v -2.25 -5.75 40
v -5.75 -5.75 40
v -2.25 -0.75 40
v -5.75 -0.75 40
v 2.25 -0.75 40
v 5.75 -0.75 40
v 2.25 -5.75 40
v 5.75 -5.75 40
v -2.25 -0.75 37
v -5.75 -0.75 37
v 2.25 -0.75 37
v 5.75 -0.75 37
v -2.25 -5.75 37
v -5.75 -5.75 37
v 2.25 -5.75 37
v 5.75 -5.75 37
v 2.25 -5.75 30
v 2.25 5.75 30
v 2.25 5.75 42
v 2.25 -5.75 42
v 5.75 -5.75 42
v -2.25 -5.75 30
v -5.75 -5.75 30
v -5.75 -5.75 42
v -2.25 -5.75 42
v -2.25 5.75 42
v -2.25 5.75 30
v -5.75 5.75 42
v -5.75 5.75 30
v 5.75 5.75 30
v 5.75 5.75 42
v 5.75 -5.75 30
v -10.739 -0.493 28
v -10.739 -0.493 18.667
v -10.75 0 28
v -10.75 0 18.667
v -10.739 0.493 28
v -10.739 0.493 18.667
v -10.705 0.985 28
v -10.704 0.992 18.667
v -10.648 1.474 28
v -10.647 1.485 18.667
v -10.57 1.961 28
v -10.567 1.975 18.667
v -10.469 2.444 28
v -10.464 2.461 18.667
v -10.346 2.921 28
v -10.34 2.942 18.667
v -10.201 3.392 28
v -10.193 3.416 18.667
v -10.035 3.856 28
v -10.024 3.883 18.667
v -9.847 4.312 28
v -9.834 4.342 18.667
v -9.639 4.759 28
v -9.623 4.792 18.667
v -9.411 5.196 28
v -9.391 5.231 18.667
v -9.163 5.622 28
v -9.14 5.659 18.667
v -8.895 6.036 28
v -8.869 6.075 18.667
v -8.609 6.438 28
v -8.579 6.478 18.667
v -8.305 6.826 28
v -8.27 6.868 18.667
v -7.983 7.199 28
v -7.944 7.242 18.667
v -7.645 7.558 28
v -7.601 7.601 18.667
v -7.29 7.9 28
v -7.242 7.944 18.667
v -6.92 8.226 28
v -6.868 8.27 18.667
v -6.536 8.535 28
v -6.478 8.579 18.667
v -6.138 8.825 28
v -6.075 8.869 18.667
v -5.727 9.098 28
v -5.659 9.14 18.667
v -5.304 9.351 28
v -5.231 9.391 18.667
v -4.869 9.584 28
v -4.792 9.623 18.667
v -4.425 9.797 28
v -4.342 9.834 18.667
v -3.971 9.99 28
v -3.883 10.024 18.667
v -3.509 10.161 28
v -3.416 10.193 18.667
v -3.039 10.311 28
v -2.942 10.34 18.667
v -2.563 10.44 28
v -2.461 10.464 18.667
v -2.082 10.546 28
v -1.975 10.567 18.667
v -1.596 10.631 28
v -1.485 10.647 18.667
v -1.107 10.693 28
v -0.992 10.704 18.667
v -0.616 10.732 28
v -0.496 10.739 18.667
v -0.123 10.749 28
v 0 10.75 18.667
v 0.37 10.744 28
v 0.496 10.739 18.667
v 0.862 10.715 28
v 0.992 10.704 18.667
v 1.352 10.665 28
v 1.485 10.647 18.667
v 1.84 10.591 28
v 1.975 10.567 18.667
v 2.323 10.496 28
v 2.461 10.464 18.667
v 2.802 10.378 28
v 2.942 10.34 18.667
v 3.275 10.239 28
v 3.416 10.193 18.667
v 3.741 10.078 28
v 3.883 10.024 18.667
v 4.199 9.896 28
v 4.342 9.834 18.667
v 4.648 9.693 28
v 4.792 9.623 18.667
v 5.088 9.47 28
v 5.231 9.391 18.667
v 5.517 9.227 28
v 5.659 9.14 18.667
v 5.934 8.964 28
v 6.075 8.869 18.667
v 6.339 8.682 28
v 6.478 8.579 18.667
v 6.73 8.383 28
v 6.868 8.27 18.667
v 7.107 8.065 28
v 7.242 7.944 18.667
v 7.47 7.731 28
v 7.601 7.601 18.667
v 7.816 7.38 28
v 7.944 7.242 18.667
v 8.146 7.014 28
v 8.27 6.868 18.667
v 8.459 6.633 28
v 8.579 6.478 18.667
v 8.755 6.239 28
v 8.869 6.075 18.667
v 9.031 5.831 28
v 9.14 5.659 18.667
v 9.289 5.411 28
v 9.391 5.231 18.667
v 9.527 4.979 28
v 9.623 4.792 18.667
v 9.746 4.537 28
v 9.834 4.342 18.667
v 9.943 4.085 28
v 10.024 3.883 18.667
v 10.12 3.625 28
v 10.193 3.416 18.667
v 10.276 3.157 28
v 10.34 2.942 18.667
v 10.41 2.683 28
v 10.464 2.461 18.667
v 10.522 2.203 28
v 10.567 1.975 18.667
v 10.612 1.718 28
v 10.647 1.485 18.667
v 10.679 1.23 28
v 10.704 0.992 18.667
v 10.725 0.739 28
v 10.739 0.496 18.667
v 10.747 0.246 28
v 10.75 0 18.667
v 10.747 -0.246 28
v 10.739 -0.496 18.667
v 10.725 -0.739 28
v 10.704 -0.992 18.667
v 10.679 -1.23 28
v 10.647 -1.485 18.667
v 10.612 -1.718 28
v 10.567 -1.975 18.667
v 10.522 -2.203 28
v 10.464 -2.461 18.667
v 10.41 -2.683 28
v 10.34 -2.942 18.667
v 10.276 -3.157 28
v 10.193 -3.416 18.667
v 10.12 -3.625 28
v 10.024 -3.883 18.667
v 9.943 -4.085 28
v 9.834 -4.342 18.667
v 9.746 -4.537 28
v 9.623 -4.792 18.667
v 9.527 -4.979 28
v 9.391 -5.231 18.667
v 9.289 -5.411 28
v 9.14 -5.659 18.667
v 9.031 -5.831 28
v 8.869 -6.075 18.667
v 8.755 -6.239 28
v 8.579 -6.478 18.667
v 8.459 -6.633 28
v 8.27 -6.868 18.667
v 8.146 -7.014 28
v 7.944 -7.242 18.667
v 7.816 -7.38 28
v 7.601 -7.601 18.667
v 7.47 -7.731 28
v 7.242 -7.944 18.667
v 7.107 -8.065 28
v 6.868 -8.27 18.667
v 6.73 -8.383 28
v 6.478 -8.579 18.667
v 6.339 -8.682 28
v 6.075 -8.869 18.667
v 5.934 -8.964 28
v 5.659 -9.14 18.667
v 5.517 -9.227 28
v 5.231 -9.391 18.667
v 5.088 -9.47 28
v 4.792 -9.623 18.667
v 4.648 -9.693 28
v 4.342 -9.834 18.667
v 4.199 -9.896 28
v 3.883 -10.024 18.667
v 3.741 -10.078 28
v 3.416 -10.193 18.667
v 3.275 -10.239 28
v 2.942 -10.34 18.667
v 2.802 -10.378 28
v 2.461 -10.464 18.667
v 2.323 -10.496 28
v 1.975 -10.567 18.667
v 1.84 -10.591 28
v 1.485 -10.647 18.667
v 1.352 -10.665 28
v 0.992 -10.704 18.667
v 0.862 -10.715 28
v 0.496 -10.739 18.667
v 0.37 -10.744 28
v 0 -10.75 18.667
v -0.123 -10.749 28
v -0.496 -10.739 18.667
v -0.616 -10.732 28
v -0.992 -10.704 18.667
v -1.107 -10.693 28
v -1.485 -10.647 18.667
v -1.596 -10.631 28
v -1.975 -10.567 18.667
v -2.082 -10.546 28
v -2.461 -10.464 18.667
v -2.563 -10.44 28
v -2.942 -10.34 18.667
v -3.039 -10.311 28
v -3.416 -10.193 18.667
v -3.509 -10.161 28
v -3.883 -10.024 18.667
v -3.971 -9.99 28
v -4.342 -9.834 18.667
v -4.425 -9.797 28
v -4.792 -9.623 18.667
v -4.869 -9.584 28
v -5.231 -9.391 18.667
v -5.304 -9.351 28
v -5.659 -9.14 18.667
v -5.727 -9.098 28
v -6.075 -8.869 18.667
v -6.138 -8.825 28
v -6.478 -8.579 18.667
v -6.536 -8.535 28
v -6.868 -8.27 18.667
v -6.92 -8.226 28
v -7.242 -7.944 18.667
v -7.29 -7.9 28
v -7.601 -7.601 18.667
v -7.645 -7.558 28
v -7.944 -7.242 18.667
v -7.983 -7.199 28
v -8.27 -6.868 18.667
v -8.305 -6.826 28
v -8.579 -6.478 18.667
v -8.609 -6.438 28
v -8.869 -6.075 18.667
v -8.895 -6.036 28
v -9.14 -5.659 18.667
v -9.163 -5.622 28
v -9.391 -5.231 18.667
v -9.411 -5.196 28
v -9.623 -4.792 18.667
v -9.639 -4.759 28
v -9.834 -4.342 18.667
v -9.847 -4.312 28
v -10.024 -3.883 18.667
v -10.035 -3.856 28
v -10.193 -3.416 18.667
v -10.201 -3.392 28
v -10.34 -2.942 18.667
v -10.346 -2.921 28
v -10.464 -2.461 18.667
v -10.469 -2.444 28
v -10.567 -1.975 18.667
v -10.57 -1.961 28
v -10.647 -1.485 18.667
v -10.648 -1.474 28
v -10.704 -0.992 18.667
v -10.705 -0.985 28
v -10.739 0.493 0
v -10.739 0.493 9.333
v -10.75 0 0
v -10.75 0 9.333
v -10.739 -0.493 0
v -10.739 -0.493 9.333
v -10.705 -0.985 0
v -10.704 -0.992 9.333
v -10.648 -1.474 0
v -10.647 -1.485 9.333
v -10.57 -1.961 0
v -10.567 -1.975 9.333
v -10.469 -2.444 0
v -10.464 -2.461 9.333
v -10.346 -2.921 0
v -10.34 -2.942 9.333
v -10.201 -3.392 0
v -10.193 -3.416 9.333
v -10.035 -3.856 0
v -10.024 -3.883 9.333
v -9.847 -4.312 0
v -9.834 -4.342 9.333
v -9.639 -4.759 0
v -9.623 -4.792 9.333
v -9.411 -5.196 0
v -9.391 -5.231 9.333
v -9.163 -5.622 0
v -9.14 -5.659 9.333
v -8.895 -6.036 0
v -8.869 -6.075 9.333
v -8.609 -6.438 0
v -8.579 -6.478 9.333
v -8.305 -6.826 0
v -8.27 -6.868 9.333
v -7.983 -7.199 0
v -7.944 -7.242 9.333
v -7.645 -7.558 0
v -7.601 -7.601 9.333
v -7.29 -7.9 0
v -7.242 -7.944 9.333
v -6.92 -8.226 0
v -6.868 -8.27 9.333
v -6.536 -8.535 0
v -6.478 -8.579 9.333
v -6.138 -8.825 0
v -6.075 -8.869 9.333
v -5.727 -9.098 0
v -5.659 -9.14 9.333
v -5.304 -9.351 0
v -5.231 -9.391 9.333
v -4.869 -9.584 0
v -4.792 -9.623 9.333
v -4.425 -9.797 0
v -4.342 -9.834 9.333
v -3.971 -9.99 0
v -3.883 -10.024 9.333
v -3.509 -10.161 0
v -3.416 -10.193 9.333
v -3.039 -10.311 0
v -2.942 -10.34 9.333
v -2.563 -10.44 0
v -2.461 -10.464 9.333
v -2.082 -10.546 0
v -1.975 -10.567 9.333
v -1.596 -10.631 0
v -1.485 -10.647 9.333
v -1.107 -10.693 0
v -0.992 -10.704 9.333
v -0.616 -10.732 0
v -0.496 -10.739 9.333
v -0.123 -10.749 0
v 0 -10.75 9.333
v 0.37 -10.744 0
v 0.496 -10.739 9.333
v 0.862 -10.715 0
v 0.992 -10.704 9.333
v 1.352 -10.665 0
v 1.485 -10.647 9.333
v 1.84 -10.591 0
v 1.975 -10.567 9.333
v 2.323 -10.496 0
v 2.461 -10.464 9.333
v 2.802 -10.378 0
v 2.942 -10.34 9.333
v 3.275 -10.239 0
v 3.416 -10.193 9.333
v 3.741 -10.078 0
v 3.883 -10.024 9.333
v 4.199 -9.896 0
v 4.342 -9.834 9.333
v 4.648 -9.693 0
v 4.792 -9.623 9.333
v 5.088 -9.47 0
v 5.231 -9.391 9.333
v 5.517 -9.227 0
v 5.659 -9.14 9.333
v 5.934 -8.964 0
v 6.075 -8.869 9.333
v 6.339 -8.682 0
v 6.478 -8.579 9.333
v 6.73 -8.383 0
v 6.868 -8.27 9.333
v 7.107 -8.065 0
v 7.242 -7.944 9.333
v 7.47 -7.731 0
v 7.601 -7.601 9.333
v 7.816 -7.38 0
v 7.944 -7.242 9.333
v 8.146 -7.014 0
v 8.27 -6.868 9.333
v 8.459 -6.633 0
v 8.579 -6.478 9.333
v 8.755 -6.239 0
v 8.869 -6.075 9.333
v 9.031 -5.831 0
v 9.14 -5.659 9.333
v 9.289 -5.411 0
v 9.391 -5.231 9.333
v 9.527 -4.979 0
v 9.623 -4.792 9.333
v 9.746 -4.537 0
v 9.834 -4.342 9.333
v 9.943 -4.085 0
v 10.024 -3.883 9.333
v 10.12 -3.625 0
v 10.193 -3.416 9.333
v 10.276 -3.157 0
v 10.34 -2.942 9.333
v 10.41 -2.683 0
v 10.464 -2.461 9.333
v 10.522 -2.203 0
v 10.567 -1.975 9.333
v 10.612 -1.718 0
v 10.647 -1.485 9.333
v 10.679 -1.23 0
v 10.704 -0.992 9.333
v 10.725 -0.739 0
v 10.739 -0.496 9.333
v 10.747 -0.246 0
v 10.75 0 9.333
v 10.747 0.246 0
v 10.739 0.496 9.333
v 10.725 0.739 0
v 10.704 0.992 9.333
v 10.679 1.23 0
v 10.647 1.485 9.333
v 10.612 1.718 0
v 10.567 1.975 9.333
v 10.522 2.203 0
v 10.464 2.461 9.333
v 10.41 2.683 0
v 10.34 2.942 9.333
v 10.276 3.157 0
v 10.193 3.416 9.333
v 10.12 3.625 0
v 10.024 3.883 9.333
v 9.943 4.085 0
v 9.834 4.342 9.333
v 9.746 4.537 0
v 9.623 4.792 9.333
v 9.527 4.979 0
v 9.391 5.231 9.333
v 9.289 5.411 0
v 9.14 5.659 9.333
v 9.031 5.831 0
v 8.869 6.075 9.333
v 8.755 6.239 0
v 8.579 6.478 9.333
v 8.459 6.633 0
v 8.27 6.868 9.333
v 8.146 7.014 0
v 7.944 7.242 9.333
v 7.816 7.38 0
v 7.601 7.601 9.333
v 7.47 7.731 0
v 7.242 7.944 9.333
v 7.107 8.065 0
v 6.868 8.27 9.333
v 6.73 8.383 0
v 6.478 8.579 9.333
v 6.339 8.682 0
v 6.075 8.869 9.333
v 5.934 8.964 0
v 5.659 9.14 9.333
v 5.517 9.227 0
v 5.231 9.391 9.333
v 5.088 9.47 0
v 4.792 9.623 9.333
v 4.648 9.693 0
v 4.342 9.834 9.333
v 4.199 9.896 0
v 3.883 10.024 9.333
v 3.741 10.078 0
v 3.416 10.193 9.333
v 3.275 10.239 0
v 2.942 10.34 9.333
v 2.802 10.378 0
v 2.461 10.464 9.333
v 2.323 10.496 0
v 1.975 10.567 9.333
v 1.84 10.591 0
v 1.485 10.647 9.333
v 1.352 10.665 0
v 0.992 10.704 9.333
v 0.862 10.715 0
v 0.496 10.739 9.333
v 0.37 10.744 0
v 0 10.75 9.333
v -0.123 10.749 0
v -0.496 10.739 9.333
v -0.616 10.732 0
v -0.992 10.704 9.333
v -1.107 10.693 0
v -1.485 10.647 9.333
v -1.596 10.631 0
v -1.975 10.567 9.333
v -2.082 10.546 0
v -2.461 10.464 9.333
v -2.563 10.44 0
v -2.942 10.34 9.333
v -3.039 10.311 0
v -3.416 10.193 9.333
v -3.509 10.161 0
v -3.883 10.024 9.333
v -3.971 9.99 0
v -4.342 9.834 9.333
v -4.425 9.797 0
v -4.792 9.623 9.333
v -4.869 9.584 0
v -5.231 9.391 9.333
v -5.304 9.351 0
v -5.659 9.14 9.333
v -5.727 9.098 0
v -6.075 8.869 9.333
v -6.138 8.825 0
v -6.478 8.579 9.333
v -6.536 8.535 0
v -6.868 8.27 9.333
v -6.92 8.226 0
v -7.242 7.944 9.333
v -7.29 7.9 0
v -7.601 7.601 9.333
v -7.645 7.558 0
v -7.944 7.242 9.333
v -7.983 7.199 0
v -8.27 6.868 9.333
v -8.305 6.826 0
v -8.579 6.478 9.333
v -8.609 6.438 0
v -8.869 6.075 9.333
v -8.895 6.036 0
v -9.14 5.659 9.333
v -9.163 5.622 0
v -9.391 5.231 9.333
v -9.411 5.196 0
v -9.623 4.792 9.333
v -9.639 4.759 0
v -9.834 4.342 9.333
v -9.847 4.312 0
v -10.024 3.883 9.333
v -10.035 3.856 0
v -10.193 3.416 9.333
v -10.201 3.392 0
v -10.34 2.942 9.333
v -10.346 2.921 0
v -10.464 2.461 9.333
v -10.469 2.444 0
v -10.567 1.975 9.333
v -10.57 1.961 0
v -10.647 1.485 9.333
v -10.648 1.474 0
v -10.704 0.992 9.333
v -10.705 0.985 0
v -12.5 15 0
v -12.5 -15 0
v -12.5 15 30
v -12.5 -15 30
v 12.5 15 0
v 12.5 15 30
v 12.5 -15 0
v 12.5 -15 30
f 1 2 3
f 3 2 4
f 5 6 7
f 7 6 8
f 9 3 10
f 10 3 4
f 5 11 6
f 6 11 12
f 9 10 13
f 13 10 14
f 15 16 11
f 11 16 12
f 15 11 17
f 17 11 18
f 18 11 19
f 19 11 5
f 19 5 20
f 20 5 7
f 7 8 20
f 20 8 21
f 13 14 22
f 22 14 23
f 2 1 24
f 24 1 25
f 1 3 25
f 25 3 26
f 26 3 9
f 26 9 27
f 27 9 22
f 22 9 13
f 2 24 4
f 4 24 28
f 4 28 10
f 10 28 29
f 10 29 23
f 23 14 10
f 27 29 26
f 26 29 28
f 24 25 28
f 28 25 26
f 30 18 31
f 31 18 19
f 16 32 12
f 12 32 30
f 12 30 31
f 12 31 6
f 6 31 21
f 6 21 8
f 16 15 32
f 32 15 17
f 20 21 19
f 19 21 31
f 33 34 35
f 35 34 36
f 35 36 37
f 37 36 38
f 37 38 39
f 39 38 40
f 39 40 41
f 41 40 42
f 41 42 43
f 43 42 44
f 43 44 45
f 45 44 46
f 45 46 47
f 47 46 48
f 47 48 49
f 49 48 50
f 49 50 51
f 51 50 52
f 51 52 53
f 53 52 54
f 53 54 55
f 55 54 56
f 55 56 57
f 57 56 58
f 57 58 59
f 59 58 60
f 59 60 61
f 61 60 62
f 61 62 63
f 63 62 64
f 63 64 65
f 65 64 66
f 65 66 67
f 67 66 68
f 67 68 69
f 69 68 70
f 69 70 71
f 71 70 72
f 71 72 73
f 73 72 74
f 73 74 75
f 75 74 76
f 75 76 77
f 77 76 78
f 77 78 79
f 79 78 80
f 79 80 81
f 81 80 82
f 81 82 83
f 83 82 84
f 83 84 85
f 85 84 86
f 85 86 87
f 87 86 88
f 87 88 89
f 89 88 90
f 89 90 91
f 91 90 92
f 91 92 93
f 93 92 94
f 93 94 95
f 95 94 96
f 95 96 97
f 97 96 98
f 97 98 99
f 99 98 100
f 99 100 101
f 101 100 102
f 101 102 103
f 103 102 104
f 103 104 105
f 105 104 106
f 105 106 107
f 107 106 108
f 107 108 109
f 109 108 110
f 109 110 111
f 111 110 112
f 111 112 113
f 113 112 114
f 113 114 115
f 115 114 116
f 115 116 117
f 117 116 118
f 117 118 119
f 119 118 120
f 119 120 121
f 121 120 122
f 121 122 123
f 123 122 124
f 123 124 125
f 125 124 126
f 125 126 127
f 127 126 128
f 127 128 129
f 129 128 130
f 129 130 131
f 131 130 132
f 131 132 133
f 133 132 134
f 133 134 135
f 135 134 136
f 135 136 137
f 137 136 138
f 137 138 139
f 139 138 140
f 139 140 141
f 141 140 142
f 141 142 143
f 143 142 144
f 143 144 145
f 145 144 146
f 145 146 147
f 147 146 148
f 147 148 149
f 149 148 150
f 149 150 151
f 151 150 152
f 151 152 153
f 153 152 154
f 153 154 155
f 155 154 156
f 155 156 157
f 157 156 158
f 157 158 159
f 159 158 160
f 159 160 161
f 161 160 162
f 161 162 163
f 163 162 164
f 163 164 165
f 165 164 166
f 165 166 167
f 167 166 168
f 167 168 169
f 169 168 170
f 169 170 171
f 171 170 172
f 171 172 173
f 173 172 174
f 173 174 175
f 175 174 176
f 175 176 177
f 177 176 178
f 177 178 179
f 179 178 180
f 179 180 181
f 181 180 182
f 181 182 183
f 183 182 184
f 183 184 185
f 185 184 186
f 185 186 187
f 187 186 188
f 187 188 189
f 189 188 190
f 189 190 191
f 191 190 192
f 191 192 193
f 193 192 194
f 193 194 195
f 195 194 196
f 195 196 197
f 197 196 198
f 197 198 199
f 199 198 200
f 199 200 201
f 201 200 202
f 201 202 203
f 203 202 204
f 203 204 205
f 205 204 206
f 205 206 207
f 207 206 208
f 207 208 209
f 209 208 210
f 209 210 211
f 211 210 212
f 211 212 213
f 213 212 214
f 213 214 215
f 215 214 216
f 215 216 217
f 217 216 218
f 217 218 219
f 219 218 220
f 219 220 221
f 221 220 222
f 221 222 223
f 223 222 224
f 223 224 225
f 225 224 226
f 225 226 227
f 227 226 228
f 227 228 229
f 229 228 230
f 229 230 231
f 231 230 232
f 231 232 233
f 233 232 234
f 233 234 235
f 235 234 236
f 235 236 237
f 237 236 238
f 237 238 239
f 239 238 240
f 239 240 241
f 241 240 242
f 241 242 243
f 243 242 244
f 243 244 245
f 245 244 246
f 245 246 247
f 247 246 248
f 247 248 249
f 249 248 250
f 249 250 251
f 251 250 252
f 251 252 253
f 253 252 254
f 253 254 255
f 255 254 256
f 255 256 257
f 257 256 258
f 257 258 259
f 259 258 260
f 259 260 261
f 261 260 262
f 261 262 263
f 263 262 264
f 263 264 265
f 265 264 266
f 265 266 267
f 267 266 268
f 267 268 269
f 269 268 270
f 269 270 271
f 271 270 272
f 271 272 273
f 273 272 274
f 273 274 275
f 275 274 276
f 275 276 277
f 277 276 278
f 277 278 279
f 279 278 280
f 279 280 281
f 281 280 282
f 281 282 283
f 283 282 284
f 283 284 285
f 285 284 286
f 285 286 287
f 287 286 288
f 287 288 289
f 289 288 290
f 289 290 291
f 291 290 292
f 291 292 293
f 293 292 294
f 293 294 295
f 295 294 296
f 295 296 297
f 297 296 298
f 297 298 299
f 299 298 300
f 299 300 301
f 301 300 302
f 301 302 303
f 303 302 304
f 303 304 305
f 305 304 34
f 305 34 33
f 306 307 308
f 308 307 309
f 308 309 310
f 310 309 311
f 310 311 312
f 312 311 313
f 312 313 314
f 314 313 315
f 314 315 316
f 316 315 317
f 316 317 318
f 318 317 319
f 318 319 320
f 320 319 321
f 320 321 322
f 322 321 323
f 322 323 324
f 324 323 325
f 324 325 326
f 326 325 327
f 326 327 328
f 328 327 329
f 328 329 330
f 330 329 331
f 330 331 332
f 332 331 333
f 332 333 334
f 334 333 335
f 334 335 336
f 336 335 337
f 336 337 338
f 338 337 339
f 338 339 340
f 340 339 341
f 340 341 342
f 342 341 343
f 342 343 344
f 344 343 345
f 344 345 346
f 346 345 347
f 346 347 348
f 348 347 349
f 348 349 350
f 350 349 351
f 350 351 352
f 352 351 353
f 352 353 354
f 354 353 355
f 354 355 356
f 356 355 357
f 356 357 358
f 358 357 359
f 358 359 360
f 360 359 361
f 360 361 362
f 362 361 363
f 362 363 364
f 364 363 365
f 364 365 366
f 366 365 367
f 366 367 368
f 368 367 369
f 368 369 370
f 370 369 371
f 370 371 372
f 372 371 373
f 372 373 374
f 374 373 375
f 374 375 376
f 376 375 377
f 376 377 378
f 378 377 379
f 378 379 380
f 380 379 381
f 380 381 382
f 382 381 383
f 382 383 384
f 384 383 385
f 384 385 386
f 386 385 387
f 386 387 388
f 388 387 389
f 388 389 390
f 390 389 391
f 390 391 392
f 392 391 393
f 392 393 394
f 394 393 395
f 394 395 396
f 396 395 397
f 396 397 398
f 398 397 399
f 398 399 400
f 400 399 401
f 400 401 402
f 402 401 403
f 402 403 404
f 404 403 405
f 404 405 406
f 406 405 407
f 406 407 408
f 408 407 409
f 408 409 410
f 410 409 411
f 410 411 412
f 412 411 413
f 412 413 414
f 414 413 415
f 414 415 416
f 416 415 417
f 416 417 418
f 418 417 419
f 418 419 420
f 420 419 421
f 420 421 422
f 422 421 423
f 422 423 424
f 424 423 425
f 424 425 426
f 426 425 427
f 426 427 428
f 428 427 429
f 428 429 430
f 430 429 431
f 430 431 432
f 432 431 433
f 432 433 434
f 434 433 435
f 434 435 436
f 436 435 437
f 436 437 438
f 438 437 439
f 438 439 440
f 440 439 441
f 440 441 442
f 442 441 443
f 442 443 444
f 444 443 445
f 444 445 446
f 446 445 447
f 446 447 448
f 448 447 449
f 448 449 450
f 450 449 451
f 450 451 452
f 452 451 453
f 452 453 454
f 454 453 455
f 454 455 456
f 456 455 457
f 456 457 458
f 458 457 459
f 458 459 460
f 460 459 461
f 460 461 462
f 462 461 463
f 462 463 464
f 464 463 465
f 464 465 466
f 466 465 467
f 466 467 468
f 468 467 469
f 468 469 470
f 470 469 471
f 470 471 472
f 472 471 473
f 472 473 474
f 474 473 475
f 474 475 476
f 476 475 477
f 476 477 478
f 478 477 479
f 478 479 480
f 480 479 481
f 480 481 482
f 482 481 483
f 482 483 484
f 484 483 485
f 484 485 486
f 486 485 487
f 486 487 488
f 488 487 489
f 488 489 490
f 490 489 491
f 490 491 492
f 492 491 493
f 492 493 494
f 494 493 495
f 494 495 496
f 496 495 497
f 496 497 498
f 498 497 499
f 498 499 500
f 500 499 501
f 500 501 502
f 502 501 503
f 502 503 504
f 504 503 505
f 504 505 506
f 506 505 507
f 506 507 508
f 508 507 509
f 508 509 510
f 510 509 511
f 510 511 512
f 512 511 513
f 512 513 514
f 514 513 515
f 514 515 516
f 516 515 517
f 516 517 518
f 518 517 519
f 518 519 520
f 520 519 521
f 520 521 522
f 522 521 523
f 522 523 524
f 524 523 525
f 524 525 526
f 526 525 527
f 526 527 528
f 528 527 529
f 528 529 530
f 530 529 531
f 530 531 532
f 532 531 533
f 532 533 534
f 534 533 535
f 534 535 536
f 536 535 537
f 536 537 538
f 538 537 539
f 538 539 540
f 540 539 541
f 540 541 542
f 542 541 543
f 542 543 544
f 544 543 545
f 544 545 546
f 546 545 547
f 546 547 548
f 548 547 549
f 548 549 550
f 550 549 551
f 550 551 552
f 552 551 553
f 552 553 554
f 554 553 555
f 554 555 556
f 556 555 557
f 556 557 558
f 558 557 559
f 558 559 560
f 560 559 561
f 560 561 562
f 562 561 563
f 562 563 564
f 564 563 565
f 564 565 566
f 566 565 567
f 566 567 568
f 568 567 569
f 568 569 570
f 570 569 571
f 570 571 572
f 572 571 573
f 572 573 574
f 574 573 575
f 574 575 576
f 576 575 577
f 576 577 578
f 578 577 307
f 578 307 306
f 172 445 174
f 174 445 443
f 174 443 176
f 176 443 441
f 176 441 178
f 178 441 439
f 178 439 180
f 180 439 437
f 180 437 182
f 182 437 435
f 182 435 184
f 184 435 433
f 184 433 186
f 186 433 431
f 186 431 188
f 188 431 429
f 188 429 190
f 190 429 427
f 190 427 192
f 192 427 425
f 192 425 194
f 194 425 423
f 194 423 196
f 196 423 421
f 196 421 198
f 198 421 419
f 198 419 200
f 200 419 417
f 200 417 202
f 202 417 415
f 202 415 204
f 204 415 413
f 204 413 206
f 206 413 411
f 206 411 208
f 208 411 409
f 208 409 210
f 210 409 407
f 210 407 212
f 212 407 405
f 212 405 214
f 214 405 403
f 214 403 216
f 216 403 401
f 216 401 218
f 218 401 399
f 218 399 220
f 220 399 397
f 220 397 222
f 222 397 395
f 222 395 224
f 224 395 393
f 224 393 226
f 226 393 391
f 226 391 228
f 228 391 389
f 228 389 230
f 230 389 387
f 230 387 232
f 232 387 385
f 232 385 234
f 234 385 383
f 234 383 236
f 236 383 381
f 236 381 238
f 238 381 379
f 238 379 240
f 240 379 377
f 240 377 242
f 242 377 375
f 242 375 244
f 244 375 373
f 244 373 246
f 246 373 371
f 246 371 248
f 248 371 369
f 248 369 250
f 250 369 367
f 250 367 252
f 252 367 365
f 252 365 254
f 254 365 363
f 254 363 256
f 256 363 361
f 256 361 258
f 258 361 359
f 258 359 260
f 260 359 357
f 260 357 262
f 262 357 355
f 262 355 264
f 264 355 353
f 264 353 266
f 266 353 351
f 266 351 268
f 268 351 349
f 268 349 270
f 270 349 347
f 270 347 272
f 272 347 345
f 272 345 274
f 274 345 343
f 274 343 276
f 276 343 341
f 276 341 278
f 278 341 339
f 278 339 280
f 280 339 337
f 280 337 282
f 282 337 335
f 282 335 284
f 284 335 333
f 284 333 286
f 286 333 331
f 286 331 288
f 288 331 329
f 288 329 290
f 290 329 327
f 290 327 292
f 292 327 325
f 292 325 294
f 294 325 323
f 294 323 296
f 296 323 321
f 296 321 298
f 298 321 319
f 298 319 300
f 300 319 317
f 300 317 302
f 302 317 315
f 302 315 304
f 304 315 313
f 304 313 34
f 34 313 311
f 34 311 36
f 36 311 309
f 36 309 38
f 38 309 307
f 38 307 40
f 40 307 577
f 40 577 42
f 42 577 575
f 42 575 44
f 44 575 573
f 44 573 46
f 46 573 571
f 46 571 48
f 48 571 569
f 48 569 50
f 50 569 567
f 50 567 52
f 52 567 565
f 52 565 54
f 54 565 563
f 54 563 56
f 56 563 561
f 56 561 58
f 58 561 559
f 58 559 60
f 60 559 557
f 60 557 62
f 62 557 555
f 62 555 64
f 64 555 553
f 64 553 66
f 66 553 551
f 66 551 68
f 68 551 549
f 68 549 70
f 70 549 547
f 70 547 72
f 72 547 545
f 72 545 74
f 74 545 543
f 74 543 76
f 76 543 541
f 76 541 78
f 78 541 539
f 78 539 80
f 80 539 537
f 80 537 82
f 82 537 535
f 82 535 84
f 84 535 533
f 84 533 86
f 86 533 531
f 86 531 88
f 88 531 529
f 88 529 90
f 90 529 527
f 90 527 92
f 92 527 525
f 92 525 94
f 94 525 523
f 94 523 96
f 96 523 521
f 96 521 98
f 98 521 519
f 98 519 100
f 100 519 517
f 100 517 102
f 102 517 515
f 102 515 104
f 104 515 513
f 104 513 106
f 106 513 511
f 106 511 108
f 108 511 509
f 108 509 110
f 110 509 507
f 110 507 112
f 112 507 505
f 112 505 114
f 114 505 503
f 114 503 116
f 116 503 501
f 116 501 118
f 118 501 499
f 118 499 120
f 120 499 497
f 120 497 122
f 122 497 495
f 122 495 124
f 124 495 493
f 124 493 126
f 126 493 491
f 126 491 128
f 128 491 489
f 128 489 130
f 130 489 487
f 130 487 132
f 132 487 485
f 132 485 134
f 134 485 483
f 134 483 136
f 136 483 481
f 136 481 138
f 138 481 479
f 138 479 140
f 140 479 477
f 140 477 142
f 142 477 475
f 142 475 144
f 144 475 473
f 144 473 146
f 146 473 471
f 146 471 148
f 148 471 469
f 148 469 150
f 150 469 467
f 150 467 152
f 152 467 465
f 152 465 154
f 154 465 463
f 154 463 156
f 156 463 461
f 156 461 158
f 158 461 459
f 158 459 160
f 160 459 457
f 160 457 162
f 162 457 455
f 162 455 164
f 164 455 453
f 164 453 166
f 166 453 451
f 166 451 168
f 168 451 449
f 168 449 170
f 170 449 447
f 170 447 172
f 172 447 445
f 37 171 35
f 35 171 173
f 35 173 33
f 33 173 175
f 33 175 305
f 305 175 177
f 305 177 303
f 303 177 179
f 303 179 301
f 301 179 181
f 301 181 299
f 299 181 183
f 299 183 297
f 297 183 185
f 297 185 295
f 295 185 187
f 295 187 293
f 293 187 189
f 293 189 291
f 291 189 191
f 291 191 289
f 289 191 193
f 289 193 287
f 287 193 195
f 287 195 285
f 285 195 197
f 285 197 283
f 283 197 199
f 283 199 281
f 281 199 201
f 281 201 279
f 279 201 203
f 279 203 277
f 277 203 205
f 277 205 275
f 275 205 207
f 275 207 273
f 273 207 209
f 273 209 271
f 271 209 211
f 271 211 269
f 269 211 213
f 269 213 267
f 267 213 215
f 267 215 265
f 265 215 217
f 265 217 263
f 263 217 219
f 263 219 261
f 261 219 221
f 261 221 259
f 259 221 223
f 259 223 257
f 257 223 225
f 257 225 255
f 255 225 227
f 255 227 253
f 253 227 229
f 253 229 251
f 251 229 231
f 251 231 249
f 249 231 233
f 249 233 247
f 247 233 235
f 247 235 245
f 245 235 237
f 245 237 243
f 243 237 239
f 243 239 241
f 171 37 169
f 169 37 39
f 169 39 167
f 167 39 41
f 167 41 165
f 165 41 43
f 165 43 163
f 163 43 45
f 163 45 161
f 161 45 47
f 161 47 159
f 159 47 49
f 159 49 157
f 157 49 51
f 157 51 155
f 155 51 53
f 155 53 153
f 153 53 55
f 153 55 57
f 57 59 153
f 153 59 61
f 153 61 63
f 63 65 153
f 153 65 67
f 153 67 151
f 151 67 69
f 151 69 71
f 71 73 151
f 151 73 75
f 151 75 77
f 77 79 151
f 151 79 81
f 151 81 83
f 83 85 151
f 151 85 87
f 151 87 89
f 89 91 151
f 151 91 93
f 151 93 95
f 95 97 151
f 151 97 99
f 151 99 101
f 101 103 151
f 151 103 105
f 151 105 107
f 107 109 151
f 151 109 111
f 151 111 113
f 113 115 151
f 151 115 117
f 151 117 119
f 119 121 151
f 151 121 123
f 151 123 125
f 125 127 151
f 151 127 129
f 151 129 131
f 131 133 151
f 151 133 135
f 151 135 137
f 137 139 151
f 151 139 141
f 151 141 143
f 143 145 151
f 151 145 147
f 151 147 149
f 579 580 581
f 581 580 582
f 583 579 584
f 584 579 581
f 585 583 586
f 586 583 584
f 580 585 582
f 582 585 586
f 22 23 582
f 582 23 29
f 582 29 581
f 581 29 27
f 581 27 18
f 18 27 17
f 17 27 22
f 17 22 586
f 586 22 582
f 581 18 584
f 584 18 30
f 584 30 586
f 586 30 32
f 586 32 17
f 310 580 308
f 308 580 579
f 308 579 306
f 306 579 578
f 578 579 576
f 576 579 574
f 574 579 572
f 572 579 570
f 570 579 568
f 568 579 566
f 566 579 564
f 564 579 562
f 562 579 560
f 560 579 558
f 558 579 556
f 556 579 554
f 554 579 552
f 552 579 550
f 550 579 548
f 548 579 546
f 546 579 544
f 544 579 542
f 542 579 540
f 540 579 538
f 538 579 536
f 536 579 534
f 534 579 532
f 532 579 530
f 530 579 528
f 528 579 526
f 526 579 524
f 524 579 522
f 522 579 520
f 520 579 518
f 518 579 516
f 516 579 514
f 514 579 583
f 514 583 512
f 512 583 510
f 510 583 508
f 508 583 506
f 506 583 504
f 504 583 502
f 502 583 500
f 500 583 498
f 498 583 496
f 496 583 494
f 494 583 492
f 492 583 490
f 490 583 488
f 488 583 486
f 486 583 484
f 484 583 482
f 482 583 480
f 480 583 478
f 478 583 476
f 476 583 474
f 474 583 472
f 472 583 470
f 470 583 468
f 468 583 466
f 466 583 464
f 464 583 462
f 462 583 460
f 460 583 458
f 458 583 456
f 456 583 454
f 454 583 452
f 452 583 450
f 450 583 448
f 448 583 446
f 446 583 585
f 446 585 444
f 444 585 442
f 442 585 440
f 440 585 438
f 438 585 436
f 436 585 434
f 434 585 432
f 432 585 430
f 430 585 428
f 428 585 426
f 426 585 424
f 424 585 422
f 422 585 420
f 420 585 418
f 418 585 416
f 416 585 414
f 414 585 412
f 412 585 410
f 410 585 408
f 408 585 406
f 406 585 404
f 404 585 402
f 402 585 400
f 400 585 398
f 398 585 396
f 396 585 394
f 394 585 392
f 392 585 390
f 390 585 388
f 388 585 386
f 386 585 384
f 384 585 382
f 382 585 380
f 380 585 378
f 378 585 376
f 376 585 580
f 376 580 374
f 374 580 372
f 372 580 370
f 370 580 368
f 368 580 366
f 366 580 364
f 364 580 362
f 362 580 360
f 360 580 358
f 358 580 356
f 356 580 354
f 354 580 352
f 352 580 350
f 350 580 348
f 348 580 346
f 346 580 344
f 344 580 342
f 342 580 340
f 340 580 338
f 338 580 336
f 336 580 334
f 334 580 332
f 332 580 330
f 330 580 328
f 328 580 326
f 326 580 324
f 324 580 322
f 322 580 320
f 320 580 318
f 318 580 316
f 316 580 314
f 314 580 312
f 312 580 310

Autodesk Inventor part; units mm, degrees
ref_plane "YZ Plane" through (0, 0, 0) normal (1, 0, 0) x (0, 1, 0)
ref_plane "XZ Plane" through (0, 0, 0) normal (0, 1, 0) x (-1, 0, 0)
ref_plane "XY Plane" through (0, 0, 0) normal (0, 0, 1) x (1, 0, 0)
sketch "Sketch12" plane through (0, 0, 0) normal (0, 0, 1) x (1, 0, 0)
  line L0 (-12.5, 15) -> (12.5, 15)
  line L1 (12.5, 15) -> (12.5, -15)
  line L2 (12.5, -15) -> (-12.5, -15)
  line L3 (-12.5, -15) -> (-12.5, 15)
  line L4 (-12.5, 15) -> (12.5, -15) construction
  line L5 (12.5, 15) -> (-12.5, -15) construction
  point P0 (0, 0)
  dimension "d48" = 25
  dimension "d49" = 30
extrude "Extrusion12" add sketch "Sketch12" along normal blind 30
sketch "Sketch14" plane through (0, 0, 0) normal (0, 0, -1) x (-1, 0, 0)
  circle A0 centre (0, 0) radius 10.75
  dimension "d71" = 21.5
extrude "Extrusion14" cut sketch "Sketch14" against normal blind 28
sketch "Sketch15" plane through (0, 0, 30) normal (0, 0, 1) x (1, 0, 0)
  line L0 (5.75, 5.75) -> (-5.75, 5.75) construction
  line L1 (-5.75, 5.75) -> (-5.75, -5.75) construction
  line L2 (-5.75, -5.75) -> (5.75, -5.75) construction
  line L3 (5.75, -5.75) -> (5.75, 5.75) construction
  line L4 (5.75, 5.75) -> (-5.75, -5.75) construction
  line L5 (-5.75, 5.75) -> (5.75, -5.75) construction
  line L6 (5.75, 5.75) -> (2.25, 5.75)
  line L7 (2.25, 5.75) -> (2.25, -5.75)
  line L8 (2.25, -5.75) -> (5.75, -5.75)
  line L9 (5.75, -5.75) -> (5.75, 5.75)
  line L10 (-5.75, 5.75) -> (-2.25, 5.75)
  line L11 (-2.25, 5.75) -> (-2.25, -5.75)
  line L12 (-2.25, -5.75) -> (-5.75, -5.75)
  line L13 (-5.75, -5.75) -> (-5.75, 5.75)
  point P0 (0, 0)
  dimension "d74" = 11.5
  dimension "d75" = 11.5
  dimension "d76" = 3.5
  dimension "d78" = 3.5
extrude "Extrusion15" add sketch "Sketch15" along normal blind 12
sketch "Sketch16" plane through (-5.75, -5.75, 30) normal (0, -1, 0) x (1, 0, 0)
  line L0 (8, 0) -> (11.5, 0) construction
  line L1 (8, 0) -> (8, 12) construction
  line L2 (11.5, 12) -> (8, 12) construction
  line L3 (11.5, 0) -> (11.5, 12) construction
  line L4 (0, 0) -> (3.5, 0) construction
  line L5 (0, 0) -> (0, 12) construction
  line L6 (3.5, 12) -> (0, 12) construction
  line L7 (3.5, 0) -> (3.5, 12) construction
  line L8 (0, 10) -> (11.5, 10)
  line L9 (11.5, 10) -> (11.5, 7)
  line L10 (11.5, 7) -> (0, 7)
  line L11 (0, 7) -> (0, 10)
  point P0 (5.75, -30)
  dimension "d82" = 2
  dimension "d83" = 3
extrude "Extrusion16" cut sketch "Sketch16" against normal blind 5
properties part number "base"
